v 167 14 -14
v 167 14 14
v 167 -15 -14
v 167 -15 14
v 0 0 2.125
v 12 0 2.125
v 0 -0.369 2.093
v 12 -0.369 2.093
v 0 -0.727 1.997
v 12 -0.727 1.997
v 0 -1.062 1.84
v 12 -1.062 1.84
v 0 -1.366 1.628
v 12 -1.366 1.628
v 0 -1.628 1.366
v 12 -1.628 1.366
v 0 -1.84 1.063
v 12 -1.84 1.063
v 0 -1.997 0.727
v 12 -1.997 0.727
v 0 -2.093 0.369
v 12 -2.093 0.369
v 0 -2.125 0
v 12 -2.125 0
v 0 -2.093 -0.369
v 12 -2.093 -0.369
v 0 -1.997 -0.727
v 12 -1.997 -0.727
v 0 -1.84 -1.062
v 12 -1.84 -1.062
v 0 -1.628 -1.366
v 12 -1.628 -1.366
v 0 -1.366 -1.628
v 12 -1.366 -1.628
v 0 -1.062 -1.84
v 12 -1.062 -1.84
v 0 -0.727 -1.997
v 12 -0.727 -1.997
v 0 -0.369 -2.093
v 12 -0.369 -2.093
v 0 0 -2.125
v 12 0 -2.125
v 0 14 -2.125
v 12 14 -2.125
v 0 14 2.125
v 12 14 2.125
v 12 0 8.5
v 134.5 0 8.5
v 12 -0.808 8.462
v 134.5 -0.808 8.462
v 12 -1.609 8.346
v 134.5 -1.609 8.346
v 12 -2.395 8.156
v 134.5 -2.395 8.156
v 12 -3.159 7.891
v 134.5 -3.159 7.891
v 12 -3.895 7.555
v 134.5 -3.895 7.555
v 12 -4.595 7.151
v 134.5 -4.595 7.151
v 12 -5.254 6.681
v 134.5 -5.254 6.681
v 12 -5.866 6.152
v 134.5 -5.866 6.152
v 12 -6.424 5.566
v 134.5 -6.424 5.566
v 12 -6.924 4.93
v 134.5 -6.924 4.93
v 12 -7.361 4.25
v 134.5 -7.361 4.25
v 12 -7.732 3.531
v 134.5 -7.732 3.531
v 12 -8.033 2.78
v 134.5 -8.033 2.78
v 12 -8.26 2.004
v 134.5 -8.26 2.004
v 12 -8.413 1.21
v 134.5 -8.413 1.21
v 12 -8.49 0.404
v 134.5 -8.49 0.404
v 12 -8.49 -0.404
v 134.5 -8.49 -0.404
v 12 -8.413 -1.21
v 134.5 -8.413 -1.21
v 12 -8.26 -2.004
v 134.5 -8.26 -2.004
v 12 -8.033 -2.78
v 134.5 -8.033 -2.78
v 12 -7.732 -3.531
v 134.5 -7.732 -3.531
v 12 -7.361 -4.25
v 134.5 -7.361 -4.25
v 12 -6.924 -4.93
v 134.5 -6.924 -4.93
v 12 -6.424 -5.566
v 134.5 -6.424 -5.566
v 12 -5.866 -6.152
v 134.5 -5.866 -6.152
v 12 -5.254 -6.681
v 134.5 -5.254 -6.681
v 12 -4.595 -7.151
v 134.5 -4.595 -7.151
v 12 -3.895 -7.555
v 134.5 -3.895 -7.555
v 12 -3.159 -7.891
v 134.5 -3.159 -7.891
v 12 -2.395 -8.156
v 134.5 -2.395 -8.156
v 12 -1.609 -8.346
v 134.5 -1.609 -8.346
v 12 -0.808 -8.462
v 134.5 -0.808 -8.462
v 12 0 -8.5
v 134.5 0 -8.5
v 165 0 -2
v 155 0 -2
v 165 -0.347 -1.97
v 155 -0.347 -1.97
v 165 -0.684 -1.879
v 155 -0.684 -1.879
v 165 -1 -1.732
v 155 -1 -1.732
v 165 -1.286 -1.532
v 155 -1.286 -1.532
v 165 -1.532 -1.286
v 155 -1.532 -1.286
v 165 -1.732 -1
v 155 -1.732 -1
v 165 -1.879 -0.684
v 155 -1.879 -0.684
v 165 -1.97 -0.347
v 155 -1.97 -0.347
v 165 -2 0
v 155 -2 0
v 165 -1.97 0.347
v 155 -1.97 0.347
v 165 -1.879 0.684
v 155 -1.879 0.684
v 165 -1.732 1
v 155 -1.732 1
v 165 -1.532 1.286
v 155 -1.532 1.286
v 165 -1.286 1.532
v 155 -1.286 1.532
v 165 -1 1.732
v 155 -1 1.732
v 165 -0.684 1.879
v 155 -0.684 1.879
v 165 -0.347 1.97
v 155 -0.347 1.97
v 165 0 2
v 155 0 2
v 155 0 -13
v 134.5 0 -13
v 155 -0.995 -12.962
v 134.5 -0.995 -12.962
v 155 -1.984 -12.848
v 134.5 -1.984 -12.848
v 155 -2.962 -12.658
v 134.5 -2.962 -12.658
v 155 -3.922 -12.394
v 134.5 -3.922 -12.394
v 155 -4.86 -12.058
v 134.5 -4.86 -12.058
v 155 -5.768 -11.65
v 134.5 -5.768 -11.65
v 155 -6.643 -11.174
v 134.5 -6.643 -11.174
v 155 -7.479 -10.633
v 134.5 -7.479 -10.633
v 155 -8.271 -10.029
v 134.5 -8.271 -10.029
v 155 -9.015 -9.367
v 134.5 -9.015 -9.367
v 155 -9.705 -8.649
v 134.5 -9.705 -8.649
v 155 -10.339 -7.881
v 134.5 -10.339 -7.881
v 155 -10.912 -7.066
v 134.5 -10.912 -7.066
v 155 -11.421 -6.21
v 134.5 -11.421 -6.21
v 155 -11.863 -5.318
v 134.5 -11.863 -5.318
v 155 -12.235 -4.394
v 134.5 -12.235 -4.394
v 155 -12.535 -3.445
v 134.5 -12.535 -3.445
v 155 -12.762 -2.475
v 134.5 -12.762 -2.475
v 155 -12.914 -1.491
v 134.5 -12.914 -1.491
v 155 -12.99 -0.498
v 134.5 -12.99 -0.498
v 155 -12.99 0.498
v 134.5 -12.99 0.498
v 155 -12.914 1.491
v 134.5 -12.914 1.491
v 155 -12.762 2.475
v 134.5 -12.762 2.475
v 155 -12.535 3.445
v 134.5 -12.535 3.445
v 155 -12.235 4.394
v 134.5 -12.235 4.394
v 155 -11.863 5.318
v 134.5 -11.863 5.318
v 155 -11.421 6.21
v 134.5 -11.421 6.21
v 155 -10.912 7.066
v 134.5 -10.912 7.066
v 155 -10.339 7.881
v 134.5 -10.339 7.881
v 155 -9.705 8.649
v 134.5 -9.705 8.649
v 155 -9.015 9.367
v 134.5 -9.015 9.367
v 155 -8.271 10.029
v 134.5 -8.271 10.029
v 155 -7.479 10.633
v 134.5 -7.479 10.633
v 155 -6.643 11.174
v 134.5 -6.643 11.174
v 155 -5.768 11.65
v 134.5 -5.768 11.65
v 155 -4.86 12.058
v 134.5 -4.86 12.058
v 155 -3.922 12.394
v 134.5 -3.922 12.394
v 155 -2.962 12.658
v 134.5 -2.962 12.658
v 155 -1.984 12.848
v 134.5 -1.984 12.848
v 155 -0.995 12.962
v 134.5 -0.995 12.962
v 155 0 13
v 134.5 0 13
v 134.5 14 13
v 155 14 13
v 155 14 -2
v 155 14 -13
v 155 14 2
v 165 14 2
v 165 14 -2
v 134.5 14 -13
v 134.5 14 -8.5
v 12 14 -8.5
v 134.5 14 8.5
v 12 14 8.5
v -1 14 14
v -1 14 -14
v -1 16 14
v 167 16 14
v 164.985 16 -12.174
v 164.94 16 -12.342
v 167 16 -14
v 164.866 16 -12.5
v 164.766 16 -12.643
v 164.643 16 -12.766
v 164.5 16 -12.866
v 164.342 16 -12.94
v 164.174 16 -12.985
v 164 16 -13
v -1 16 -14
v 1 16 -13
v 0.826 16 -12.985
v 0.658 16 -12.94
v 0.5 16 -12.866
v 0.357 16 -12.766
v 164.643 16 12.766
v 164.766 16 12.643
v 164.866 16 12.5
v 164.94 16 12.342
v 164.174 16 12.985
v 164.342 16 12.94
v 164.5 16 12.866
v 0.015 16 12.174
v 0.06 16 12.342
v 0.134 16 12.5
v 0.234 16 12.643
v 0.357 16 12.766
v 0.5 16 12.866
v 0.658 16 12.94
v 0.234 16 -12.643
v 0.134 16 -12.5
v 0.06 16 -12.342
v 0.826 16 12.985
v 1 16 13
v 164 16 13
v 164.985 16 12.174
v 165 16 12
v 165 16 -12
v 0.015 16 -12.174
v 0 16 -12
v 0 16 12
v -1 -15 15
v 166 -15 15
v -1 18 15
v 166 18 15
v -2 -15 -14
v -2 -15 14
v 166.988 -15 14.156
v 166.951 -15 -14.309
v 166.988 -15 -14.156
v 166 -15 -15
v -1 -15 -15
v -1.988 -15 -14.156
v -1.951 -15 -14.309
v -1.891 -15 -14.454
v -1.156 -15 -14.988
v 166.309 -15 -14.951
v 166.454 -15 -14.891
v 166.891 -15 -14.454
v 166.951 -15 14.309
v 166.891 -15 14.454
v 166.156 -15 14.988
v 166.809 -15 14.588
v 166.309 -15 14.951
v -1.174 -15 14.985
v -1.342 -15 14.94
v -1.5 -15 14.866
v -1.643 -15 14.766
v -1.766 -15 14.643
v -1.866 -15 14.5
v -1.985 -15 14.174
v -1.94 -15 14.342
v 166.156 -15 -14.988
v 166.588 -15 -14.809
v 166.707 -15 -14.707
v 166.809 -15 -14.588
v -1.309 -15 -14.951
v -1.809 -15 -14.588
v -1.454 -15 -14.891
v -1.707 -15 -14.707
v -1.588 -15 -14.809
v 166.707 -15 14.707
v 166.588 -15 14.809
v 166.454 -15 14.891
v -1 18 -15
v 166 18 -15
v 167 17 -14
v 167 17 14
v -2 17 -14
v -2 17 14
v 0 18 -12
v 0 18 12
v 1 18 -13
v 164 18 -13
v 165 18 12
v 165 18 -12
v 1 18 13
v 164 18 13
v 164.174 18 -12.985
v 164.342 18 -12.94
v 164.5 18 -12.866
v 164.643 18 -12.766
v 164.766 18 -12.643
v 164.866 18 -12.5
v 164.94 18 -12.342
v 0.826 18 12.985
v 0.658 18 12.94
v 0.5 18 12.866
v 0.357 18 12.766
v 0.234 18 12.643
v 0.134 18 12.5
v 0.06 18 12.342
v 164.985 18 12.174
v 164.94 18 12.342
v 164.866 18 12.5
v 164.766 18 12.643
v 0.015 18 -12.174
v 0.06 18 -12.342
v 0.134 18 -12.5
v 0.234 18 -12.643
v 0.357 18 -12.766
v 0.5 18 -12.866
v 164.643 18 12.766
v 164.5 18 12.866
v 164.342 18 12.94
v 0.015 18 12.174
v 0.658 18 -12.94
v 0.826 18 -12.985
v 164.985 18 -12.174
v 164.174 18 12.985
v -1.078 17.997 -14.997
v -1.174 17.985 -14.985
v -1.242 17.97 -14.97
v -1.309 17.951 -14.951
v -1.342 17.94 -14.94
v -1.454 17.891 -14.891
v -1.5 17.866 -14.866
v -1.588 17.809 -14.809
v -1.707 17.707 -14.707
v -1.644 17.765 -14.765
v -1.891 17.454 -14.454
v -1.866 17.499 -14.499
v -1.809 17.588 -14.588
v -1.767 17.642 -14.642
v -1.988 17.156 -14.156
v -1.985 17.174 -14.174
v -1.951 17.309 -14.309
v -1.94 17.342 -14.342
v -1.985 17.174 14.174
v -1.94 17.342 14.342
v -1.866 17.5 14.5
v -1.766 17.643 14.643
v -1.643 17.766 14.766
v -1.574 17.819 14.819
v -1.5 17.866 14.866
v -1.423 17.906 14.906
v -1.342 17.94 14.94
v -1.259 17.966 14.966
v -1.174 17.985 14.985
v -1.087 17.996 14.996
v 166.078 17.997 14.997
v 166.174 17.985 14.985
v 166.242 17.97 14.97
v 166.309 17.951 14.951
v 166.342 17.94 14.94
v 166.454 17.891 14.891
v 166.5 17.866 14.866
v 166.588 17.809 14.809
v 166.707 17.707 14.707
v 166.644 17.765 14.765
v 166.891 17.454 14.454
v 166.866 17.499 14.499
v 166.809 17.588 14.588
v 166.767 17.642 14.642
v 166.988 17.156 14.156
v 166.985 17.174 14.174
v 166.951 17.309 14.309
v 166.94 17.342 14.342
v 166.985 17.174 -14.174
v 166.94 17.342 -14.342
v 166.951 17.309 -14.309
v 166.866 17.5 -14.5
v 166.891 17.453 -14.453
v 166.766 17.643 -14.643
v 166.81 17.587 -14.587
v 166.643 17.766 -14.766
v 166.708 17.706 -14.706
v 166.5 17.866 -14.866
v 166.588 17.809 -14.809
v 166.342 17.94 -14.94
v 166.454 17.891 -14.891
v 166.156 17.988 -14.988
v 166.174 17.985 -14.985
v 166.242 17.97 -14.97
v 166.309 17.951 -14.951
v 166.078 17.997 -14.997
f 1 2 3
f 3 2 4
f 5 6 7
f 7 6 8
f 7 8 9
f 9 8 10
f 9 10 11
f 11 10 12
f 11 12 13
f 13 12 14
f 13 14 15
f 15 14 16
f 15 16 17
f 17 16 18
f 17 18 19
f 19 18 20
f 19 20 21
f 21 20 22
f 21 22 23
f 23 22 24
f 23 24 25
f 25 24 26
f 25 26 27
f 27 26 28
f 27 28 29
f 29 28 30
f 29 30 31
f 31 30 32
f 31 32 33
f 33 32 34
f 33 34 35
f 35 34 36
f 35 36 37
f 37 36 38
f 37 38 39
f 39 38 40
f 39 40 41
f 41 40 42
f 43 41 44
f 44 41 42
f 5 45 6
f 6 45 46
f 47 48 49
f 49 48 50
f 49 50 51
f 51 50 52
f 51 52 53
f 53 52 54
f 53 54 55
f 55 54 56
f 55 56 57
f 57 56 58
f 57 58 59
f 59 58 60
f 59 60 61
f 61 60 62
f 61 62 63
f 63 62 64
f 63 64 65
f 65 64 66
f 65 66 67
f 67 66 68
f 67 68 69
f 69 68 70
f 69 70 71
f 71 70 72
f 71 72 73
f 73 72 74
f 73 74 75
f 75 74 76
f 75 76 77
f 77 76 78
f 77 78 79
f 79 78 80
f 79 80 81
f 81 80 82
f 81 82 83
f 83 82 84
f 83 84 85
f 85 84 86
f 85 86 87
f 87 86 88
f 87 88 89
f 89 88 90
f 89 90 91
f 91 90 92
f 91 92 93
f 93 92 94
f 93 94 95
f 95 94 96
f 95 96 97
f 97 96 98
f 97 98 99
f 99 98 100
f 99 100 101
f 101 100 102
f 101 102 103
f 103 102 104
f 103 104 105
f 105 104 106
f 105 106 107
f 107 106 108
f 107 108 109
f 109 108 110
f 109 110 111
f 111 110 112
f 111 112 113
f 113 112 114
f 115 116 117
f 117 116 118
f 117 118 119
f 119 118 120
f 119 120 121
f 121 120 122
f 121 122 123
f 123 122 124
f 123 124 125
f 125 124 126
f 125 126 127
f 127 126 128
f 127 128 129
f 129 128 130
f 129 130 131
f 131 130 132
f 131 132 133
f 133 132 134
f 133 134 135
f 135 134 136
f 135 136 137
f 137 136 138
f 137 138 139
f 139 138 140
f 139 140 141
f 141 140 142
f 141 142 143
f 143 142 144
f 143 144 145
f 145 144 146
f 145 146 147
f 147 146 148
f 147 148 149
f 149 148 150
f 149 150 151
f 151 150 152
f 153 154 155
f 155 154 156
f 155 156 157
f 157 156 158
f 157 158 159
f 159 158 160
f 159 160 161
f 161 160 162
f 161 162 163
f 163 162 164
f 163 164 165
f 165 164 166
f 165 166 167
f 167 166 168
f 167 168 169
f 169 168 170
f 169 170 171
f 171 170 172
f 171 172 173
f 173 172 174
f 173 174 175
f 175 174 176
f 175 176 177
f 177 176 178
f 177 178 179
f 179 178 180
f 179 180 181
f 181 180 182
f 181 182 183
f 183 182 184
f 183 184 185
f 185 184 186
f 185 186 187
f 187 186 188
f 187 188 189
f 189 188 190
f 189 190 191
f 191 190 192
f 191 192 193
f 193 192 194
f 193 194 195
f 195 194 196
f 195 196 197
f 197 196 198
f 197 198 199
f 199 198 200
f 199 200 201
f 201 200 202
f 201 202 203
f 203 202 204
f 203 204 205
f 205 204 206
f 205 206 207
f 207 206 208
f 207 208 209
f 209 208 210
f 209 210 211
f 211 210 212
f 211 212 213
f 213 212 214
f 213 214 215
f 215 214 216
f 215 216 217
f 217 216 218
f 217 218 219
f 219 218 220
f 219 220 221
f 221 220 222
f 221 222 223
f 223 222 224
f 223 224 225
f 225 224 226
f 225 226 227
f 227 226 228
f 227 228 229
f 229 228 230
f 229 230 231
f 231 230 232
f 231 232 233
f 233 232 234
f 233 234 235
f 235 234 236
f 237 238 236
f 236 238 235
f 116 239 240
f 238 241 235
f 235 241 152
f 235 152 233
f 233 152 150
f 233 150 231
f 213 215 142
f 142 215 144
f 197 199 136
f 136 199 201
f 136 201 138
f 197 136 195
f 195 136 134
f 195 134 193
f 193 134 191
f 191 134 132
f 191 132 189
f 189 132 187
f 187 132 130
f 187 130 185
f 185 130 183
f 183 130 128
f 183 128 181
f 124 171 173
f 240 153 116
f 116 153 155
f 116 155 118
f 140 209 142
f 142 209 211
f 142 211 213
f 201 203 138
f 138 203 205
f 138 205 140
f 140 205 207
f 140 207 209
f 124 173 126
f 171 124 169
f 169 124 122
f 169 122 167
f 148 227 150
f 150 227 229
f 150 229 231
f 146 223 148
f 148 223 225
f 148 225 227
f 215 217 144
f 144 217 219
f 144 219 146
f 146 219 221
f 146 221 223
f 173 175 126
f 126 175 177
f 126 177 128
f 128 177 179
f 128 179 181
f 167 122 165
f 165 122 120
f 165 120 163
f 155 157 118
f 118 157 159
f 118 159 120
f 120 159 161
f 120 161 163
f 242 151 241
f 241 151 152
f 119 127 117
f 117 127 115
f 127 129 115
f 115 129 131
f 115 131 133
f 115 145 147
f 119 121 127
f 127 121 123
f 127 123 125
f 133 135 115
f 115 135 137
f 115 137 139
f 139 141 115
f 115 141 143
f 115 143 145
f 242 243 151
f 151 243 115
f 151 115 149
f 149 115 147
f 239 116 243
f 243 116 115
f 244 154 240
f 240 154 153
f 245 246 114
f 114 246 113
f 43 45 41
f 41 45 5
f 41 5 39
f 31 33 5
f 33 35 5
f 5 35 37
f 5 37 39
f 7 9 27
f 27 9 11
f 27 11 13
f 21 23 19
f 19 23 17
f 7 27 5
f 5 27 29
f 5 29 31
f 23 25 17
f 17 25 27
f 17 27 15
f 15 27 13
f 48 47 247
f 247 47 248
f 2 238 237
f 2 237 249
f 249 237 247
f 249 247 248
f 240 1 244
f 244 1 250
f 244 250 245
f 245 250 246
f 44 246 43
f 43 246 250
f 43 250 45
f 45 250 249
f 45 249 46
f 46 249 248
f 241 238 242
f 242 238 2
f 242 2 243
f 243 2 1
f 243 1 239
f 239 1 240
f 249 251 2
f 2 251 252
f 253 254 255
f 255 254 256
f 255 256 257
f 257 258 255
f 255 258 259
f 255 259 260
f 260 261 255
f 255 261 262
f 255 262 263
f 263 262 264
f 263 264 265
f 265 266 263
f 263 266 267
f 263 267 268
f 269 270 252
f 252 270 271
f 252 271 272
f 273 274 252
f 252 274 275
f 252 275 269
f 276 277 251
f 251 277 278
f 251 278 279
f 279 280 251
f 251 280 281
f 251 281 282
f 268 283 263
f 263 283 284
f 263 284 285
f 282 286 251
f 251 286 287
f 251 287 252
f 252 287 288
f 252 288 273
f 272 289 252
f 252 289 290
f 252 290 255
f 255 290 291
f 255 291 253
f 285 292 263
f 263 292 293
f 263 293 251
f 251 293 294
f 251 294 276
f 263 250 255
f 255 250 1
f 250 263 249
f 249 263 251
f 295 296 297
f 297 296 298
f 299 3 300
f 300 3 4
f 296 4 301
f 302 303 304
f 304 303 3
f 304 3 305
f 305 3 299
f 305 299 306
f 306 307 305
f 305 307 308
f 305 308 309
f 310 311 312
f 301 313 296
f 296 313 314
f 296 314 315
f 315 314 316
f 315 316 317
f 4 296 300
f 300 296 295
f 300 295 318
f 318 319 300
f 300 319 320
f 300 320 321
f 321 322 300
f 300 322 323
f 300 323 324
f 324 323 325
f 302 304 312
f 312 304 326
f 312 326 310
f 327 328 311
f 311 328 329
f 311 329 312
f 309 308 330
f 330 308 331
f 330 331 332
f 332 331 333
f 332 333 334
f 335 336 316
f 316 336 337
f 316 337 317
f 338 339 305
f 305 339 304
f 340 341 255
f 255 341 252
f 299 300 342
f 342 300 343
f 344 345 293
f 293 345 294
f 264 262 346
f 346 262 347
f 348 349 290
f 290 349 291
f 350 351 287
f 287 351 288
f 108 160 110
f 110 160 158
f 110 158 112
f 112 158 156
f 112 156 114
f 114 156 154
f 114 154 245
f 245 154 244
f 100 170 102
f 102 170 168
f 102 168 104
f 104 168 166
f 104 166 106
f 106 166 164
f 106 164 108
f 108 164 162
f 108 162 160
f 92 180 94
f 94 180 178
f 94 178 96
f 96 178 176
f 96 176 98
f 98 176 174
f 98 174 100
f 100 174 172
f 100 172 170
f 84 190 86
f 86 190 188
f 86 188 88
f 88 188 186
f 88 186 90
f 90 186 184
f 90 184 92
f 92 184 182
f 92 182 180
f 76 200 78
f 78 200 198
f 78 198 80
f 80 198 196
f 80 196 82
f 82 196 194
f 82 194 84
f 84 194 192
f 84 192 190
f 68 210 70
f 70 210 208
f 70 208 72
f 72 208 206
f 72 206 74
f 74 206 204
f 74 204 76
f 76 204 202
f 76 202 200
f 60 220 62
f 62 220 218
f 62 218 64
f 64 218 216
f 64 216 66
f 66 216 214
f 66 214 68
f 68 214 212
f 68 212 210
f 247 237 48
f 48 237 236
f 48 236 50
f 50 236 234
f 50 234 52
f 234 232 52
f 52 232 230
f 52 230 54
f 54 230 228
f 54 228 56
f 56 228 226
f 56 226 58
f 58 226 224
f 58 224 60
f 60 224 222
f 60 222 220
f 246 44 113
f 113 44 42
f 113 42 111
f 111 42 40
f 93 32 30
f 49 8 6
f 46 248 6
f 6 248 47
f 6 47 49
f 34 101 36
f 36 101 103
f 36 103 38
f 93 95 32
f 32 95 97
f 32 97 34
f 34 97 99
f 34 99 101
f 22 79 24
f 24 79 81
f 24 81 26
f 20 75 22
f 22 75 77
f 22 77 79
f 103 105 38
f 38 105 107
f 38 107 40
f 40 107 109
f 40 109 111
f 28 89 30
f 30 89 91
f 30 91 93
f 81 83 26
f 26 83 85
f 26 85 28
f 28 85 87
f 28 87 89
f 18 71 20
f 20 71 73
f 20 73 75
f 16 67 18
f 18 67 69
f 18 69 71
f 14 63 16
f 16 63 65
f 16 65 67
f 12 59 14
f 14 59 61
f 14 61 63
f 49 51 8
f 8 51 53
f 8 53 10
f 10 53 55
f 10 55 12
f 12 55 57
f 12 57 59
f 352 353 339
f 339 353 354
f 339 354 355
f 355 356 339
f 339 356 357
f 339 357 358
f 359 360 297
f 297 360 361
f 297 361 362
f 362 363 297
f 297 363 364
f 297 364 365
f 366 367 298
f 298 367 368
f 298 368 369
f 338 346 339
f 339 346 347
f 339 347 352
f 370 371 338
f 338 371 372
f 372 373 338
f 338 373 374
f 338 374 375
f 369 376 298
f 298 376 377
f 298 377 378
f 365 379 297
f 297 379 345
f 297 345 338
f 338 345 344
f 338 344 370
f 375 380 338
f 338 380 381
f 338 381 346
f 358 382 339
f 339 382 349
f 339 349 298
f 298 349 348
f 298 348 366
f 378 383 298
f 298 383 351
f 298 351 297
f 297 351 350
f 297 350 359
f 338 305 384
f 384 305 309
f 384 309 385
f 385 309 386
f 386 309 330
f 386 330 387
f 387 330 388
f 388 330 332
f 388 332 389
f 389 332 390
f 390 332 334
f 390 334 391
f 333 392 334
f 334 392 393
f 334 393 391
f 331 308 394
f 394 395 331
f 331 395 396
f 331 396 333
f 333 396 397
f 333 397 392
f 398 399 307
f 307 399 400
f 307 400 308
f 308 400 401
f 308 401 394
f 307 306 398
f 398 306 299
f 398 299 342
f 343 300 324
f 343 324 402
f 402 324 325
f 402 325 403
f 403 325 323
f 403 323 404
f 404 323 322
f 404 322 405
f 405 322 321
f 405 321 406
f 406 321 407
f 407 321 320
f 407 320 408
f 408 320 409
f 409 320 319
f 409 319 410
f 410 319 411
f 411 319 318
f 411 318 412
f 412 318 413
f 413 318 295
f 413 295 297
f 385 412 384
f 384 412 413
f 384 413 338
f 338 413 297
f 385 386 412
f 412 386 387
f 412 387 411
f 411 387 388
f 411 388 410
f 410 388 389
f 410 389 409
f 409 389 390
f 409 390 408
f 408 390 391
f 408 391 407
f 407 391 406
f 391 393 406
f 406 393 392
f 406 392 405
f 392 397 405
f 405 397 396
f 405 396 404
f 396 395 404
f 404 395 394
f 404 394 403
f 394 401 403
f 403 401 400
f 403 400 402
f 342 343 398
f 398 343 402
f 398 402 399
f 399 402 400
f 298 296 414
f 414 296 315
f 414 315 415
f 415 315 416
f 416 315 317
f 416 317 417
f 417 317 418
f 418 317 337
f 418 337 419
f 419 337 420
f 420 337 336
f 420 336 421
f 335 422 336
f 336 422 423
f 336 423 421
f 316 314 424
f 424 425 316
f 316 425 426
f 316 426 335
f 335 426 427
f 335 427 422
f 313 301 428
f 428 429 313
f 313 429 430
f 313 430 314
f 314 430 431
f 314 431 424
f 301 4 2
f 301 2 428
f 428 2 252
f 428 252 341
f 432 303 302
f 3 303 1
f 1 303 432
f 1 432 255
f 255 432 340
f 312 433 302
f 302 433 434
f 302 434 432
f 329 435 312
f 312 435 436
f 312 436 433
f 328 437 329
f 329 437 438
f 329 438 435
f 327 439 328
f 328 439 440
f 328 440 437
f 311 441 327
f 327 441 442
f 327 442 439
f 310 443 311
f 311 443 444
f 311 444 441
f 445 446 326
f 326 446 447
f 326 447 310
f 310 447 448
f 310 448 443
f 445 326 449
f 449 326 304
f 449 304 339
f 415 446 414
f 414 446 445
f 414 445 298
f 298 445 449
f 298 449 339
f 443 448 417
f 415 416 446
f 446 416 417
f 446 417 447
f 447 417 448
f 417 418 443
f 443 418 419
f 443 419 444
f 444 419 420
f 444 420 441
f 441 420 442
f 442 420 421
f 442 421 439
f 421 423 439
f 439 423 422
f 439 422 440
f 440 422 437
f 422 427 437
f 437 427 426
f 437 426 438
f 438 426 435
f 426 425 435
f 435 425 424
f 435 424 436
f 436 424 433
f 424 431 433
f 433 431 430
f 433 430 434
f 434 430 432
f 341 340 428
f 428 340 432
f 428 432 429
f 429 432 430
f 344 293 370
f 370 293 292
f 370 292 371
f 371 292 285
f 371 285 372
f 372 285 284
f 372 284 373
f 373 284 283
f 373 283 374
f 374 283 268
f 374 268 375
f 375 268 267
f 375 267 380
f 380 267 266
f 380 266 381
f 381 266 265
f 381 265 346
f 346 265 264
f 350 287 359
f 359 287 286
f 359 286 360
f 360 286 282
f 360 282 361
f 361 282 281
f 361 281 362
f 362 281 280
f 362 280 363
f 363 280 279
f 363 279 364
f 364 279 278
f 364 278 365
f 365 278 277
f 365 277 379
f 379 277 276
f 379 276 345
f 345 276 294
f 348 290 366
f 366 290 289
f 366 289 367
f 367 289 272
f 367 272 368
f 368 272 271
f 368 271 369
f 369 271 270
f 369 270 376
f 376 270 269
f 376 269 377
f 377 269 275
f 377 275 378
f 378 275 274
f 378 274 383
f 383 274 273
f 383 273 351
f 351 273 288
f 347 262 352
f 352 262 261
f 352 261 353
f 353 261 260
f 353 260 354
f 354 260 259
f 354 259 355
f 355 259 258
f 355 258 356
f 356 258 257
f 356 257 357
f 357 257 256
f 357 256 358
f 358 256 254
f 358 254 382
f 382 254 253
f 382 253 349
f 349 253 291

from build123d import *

# Parameters (mm, degrees)
BOSS_EXTRUDE1_DEPTH = 165
SKETCH3_W           = 30
SKETCH3_H           = 32
BOSS_EXTRUDE2_DEPTH = 2
SKETCH4_W           = 30
SKETCH4_H           = 32
BOSS_EXTRUDE3_DEPTH = 2
BOSS_EXTRUDE4_START = 10
BOSS_EXTRUDE4_DEPTH = 10
CUT_EXTRUDE1_DEPTH  = 10
BOSS_EXTRUDE6_DEPTH = 15
CUT_EXTRUDE2_DEPTH  = 15
BOSS_EXTRUDE7_DEPTH = 121
CUT_EXTRUDE3_DEPTH  = 121
SKETCH13_W          = 169
SKETCH13_H          = 30
CUT_EXTRUDE5_DEPTH  = 3
SKETCH14_W          = 169
SKETCH14_H          = 30
BOSS_EXTRUDE8_DEPTH = 3
SKETCH12_W          = 28
SKETCH12_H          = 2
CUT_EXTRUDE6_DEPTH  = 168
SKETCH16_W          = 165
SKETCH16_H          = 26
CUT_EXTRUDE7_DEPTH  = 3
CUT_EXTRUDE8_DEPTH  = 1.5
CUT_EXTRUDE9_DEPTH  = 3
SKETCH20_W          = 169
SKETCH20_H          = 30
BOSS_EXTRUDE9_DEPTH = 1
SKETCH21_W          = 165
SKETCH21_H          = 26
CUT_EXTRUDE10_DEPTH = 1
FILLET1_START       = -16
FILLET1_DEPTH       = 35
FILLET1_2_DEPTH     = 32
FILLET2_R           = 1


with BuildPart() as part:
    # Sketch2 → Boss-Extrude1 (new body)
    with BuildSketch(Plane(origin=(0, 0, 0), x_dir=(0, 0, -1), z_dir=(1, 0, 0))):
        with BuildLine():
            Line((-13, 0), (-13, 17))
            Line((-13, 17), (-15, 17))
            Line((-15, 17), (-15, -15))
            Line((-15, -15), (15, -15))
            Line((15, -15), (15, 17))
            Line((15, 17), (13, 17))
            Line((13, 17), (13, 0))
            ThreePointArc((13, 0), (0, -13), (-13, 0))
        make_face()
    extrude(amount=BOSS_EXTRUDE1_DEPTH)

    # Sketch3 → Boss-Extrude2 (add)
    with BuildSketch(Plane(origin=(165, 0, 0), x_dir=(0, 0, -1), z_dir=(1, 0, 0))):
        with Locations((0, 1)):
            Rectangle(SKETCH3_W, SKETCH3_H)
    extrude(amount=BOSS_EXTRUDE2_DEPTH)

    # Sketch4 → Boss-Extrude3 (add)
    with BuildSketch(Plane.ZY):
        with Locations((0, 1)):
            Rectangle(SKETCH4_W, SKETCH4_H)
    extrude(amount=BOSS_EXTRUDE3_DEPTH)

    # Sketch5 → Boss-Extrude4 (add)
    with BuildSketch(Plane.ZY.offset(-165).offset(BOSS_EXTRUDE4_START)):
        with BuildLine():
            Line((-13, 17), (-13, 0))
            ThreePointArc((-13, 0), (0, -13), (13, 0))
            Line((13, 0), (13, 17))
            Line((13, 17), (-13, 17))
        make_face()
    extrude(amount=-BOSS_EXTRUDE4_DEPTH)

    # Sketch6 → Cut-Extrude1 (cut)
    with BuildSketch(Plane.ZY.offset(-155)):
        with BuildLine():
            Line((-2, 0), (-2, 17))
            Line((-2, 17), (2, 17))
            Line((2, 17), (2, 0))
            ThreePointArc((2, 0), (0, -2), (-2, 0))
        make_face()
    extrude(amount=-CUT_EXTRUDE1_DEPTH, mode=Mode.SUBTRACT)

    # Sketch8 → Boss-Extrude6 (add)
    with BuildSketch(Plane(origin=(0, 0, 0), x_dir=(0, 0, -1), z_dir=(1, 0, 0))):
        with BuildLine():
            Line((13, 0), (13, 17))
            Line((13, 17), (-13, 17))
            Line((-13, 17), (-13, 0))
            ThreePointArc((-13, 0), (0, -13), (13, 0))
        make_face()
    extrude(amount=BOSS_EXTRUDE6_DEPTH)

    # Sketch9 → Cut-Extrude2 (cut)
    with BuildSketch(Plane(origin=(15, 0, 0), x_dir=(0, 0, -1), z_dir=(1, 0, 0))):
        with BuildLine():
            Line((-2.125, 0), (-2.125, 17))
            Line((-2.125, 17), (2.125, 17))
            Line((2.125, 17), (2.125, 0))
            ThreePointArc((2.125, 0), (0, -2.125), (-2.125, 0))
        make_face()
    extrude(amount=-CUT_EXTRUDE2_DEPTH, mode=Mode.SUBTRACT)

    # Sketch10 → Boss-Extrude7 (add)
    with BuildSketch(Plane(origin=(15, 0, 0), x_dir=(0, 0, -1), z_dir=(1, 0, 0))):
        with BuildLine():
            Line((13, 0), (13, 17))
            Line((13, 17), (-13, 17))
            Line((-13, 17), (-13, 0))
            ThreePointArc((-13, 0), (0, -13), (13, 0))
        make_face()
    extrude(amount=BOSS_EXTRUDE7_DEPTH)

    # Sketch11 → Cut-Extrude3 (cut)
    with BuildSketch(Plane(origin=(136, 0, 0), x_dir=(0, 0, -1), z_dir=(1, 0, 0))):
        with BuildLine():
            Line((-8.5, 0), (-8.5, 17))
            Line((-8.5, 17), (8.5, 17))
            Line((8.5, 17), (8.5, 0))
            ThreePointArc((8.5, 0), (0, -8.5), (-8.5, 0))
        make_face()
    extrude(amount=-CUT_EXTRUDE3_DEPTH, mode=Mode.SUBTRACT)

    # Sketch13 → Cut-Extrude5 (cut)
    with BuildSketch(Plane(origin=(0, 17, 0), x_dir=(1, 0, 0), z_dir=(0, 1, 0))):
        with Locations((82.5, 0)):
            Rectangle(SKETCH13_W, SKETCH13_H)
    extrude(amount=-CUT_EXTRUDE5_DEPTH, mode=Mode.SUBTRACT)

    # Sketch14 → Boss-Extrude8 (add)
    with BuildSketch(Plane(origin=(0, 14, 0), x_dir=(1, 0, 0), z_dir=(0, 1, 0))):
        with Locations((82.5, 0)):
            Rectangle(SKETCH14_W, SKETCH14_H)
    extrude(amount=BOSS_EXTRUDE8_DEPTH)

    # Sketch12 → Cut-Extrude6 (cut)
    with BuildSketch(Plane(origin=(167, 0, 0), x_dir=(0, 0, -1), z_dir=(1, 0, 0))):
        with Locations((0, 15)):
            Rectangle(SKETCH12_W, SKETCH12_H)
    extrude(amount=-CUT_EXTRUDE6_DEPTH, mode=Mode.SUBTRACT)

    # Sketch16 → Cut-Extrude7 (cut)
    with BuildSketch(Plane(origin=(0, 17, 0), x_dir=(1, 0, 0), z_dir=(0, 1, 0))):
        with Locations((82.5, 0)):
            Rectangle(SKETCH16_W, SKETCH16_H)
    extrude(amount=-CUT_EXTRUDE7_DEPTH, mode=Mode.SUBTRACT)

    # Sketch17 → Cut-Extrude8 (cut)
    with BuildSketch(Plane(origin=(136, 0, 0), x_dir=(0, 0, -1), z_dir=(1, 0, 0))):
        with BuildLine():
            Line((13, 14), (13, 0))
            ThreePointArc((13, 0), (0, -13), (-13, 0))
            Line((-13, 0), (-13, 14))
            Line((-13, 14), (-8.5, 14))
            Line((-8.5, 14), (-8.5, 0))
            ThreePointArc((-8.5, 0), (0, -8.5), (8.5, 0))
            Line((8.5, 0), (8.5, 14))
            Line((8.5, 14), (13, 14))
        make_face()
    extrude(amount=-CUT_EXTRUDE8_DEPTH, mode=Mode.SUBTRACT)

    # Sketch18 → Cut-Extrude9 (cut)
    with BuildSketch(Plane(origin=(15, 0, 0), x_dir=(0, 0, -1), z_dir=(1, 0, 0))):
        with BuildLine():
            Line((8.5, 0), (8.5, 14))
            Line((8.5, 14), (2.125, 14))
            Line((2.125, 14), (2.125, 0))
            ThreePointArc((2.125, 0), (0, -2.125), (-2.125, 0))
            Line((-2.125, 0), (-2.125, 14))
            Line((-2.125, 14), (-8.5, 14))
            Line((-8.5, 14), (-8.5, 0))
            ThreePointArc((-8.5, 0), (0, -8.5), (8.5, 0))
        make_face()
    extrude(amount=-CUT_EXTRUDE9_DEPTH, mode=Mode.SUBTRACT)

    # Sketch20 → Boss-Extrude9 (add)
    with BuildSketch(Plane(origin=(0, 17, 0), x_dir=(1, 0, 0), z_dir=(0, 1, 0))):
        with Locations((82.5, 0)):
            Rectangle(SKETCH20_W, SKETCH20_H)
    extrude(amount=BOSS_EXTRUDE9_DEPTH)

    # Sketch21 → Cut-Extrude10 (cut)
    with BuildSketch(Plane(origin=(0, 18, 0), x_dir=(1, 0, 0), z_dir=(0, 1, 0))):
        with Locations((82.5, 0)):
            Rectangle(SKETCH21_W, SKETCH21_H)
    extrude(amount=-CUT_EXTRUDE10_DEPTH, mode=Mode.SUBTRACT)

    # Fillet1: read off the stored shape, not the designer's step
    # Fillet1 outline → Fillet1 (cut)
    with BuildSketch(Plane(origin=(0, 0, 0), x_dir=(1, 0, 0), z_dir=(0, 1, 0)).offset(FILLET1_START)):
        with BuildLine():
            Line((-2, 15), (-2, 14))
            ThreePointArc((-2, 14), (-1.707106781, 14.707106781), (-1, 15))
            Line((-1, 15), (-2, 15))
        make_face()
        with BuildLine():
            ThreePointArc((-1, -15), (-1.707106781, -14.707106781), (-2, -14))
            Line((-2, -14), (-2, -15))
            Line((-2, -15), (-1, -15))
        make_face()
        with BuildLine():
            Line((167, 15), (166, 15))
            ThreePointArc((166, 15), (166.707106781, 14.707106781), (167, 14))
            Line((167, 14), (167, 15))
        make_face()
        with BuildLine():
            ThreePointArc((167, -14), (166.707106781, -14.707106781), (166, -15))
            Line((166, -15), (167, -15))
            Line((167, -15), (167, -14))
        make_face()
    extrude(amount=FILLET1_DEPTH, mode=Mode.SUBTRACT)

    # Fillet1 2 outline → Fillet1 2 (cut)
    with BuildSketch(Plane.XY.offset(FILLET1_START)):
        with BuildLine():
            Line((167, 18), (166, 18))
            ThreePointArc((166, 18), (166.707106781, 17.707106781), (167, 17))
            Line((167, 17), (167, 18))
        make_face()
        with BuildLine():
            ThreePointArc((-2, 17), (-1.707106781, 17.707106781), (-1, 18))
            Line((-1, 18), (-2, 18))
            Line((-2, 18), (-2, 17))
        make_face()
    extrude(amount=FILLET1_2_DEPTH, mode=Mode.SUBTRACT)

    # Fillet2
    fillet2_edges = [part.edges().sort_by_distance(p)[0] for p in [
        (0, 17, 13),
        (0, 17, -13),
        (165, 17, -13),
        (165, 17, 13),
    ]]
    fillet(fillet2_edges, radius=FILLET2_R)


solid = part.part
